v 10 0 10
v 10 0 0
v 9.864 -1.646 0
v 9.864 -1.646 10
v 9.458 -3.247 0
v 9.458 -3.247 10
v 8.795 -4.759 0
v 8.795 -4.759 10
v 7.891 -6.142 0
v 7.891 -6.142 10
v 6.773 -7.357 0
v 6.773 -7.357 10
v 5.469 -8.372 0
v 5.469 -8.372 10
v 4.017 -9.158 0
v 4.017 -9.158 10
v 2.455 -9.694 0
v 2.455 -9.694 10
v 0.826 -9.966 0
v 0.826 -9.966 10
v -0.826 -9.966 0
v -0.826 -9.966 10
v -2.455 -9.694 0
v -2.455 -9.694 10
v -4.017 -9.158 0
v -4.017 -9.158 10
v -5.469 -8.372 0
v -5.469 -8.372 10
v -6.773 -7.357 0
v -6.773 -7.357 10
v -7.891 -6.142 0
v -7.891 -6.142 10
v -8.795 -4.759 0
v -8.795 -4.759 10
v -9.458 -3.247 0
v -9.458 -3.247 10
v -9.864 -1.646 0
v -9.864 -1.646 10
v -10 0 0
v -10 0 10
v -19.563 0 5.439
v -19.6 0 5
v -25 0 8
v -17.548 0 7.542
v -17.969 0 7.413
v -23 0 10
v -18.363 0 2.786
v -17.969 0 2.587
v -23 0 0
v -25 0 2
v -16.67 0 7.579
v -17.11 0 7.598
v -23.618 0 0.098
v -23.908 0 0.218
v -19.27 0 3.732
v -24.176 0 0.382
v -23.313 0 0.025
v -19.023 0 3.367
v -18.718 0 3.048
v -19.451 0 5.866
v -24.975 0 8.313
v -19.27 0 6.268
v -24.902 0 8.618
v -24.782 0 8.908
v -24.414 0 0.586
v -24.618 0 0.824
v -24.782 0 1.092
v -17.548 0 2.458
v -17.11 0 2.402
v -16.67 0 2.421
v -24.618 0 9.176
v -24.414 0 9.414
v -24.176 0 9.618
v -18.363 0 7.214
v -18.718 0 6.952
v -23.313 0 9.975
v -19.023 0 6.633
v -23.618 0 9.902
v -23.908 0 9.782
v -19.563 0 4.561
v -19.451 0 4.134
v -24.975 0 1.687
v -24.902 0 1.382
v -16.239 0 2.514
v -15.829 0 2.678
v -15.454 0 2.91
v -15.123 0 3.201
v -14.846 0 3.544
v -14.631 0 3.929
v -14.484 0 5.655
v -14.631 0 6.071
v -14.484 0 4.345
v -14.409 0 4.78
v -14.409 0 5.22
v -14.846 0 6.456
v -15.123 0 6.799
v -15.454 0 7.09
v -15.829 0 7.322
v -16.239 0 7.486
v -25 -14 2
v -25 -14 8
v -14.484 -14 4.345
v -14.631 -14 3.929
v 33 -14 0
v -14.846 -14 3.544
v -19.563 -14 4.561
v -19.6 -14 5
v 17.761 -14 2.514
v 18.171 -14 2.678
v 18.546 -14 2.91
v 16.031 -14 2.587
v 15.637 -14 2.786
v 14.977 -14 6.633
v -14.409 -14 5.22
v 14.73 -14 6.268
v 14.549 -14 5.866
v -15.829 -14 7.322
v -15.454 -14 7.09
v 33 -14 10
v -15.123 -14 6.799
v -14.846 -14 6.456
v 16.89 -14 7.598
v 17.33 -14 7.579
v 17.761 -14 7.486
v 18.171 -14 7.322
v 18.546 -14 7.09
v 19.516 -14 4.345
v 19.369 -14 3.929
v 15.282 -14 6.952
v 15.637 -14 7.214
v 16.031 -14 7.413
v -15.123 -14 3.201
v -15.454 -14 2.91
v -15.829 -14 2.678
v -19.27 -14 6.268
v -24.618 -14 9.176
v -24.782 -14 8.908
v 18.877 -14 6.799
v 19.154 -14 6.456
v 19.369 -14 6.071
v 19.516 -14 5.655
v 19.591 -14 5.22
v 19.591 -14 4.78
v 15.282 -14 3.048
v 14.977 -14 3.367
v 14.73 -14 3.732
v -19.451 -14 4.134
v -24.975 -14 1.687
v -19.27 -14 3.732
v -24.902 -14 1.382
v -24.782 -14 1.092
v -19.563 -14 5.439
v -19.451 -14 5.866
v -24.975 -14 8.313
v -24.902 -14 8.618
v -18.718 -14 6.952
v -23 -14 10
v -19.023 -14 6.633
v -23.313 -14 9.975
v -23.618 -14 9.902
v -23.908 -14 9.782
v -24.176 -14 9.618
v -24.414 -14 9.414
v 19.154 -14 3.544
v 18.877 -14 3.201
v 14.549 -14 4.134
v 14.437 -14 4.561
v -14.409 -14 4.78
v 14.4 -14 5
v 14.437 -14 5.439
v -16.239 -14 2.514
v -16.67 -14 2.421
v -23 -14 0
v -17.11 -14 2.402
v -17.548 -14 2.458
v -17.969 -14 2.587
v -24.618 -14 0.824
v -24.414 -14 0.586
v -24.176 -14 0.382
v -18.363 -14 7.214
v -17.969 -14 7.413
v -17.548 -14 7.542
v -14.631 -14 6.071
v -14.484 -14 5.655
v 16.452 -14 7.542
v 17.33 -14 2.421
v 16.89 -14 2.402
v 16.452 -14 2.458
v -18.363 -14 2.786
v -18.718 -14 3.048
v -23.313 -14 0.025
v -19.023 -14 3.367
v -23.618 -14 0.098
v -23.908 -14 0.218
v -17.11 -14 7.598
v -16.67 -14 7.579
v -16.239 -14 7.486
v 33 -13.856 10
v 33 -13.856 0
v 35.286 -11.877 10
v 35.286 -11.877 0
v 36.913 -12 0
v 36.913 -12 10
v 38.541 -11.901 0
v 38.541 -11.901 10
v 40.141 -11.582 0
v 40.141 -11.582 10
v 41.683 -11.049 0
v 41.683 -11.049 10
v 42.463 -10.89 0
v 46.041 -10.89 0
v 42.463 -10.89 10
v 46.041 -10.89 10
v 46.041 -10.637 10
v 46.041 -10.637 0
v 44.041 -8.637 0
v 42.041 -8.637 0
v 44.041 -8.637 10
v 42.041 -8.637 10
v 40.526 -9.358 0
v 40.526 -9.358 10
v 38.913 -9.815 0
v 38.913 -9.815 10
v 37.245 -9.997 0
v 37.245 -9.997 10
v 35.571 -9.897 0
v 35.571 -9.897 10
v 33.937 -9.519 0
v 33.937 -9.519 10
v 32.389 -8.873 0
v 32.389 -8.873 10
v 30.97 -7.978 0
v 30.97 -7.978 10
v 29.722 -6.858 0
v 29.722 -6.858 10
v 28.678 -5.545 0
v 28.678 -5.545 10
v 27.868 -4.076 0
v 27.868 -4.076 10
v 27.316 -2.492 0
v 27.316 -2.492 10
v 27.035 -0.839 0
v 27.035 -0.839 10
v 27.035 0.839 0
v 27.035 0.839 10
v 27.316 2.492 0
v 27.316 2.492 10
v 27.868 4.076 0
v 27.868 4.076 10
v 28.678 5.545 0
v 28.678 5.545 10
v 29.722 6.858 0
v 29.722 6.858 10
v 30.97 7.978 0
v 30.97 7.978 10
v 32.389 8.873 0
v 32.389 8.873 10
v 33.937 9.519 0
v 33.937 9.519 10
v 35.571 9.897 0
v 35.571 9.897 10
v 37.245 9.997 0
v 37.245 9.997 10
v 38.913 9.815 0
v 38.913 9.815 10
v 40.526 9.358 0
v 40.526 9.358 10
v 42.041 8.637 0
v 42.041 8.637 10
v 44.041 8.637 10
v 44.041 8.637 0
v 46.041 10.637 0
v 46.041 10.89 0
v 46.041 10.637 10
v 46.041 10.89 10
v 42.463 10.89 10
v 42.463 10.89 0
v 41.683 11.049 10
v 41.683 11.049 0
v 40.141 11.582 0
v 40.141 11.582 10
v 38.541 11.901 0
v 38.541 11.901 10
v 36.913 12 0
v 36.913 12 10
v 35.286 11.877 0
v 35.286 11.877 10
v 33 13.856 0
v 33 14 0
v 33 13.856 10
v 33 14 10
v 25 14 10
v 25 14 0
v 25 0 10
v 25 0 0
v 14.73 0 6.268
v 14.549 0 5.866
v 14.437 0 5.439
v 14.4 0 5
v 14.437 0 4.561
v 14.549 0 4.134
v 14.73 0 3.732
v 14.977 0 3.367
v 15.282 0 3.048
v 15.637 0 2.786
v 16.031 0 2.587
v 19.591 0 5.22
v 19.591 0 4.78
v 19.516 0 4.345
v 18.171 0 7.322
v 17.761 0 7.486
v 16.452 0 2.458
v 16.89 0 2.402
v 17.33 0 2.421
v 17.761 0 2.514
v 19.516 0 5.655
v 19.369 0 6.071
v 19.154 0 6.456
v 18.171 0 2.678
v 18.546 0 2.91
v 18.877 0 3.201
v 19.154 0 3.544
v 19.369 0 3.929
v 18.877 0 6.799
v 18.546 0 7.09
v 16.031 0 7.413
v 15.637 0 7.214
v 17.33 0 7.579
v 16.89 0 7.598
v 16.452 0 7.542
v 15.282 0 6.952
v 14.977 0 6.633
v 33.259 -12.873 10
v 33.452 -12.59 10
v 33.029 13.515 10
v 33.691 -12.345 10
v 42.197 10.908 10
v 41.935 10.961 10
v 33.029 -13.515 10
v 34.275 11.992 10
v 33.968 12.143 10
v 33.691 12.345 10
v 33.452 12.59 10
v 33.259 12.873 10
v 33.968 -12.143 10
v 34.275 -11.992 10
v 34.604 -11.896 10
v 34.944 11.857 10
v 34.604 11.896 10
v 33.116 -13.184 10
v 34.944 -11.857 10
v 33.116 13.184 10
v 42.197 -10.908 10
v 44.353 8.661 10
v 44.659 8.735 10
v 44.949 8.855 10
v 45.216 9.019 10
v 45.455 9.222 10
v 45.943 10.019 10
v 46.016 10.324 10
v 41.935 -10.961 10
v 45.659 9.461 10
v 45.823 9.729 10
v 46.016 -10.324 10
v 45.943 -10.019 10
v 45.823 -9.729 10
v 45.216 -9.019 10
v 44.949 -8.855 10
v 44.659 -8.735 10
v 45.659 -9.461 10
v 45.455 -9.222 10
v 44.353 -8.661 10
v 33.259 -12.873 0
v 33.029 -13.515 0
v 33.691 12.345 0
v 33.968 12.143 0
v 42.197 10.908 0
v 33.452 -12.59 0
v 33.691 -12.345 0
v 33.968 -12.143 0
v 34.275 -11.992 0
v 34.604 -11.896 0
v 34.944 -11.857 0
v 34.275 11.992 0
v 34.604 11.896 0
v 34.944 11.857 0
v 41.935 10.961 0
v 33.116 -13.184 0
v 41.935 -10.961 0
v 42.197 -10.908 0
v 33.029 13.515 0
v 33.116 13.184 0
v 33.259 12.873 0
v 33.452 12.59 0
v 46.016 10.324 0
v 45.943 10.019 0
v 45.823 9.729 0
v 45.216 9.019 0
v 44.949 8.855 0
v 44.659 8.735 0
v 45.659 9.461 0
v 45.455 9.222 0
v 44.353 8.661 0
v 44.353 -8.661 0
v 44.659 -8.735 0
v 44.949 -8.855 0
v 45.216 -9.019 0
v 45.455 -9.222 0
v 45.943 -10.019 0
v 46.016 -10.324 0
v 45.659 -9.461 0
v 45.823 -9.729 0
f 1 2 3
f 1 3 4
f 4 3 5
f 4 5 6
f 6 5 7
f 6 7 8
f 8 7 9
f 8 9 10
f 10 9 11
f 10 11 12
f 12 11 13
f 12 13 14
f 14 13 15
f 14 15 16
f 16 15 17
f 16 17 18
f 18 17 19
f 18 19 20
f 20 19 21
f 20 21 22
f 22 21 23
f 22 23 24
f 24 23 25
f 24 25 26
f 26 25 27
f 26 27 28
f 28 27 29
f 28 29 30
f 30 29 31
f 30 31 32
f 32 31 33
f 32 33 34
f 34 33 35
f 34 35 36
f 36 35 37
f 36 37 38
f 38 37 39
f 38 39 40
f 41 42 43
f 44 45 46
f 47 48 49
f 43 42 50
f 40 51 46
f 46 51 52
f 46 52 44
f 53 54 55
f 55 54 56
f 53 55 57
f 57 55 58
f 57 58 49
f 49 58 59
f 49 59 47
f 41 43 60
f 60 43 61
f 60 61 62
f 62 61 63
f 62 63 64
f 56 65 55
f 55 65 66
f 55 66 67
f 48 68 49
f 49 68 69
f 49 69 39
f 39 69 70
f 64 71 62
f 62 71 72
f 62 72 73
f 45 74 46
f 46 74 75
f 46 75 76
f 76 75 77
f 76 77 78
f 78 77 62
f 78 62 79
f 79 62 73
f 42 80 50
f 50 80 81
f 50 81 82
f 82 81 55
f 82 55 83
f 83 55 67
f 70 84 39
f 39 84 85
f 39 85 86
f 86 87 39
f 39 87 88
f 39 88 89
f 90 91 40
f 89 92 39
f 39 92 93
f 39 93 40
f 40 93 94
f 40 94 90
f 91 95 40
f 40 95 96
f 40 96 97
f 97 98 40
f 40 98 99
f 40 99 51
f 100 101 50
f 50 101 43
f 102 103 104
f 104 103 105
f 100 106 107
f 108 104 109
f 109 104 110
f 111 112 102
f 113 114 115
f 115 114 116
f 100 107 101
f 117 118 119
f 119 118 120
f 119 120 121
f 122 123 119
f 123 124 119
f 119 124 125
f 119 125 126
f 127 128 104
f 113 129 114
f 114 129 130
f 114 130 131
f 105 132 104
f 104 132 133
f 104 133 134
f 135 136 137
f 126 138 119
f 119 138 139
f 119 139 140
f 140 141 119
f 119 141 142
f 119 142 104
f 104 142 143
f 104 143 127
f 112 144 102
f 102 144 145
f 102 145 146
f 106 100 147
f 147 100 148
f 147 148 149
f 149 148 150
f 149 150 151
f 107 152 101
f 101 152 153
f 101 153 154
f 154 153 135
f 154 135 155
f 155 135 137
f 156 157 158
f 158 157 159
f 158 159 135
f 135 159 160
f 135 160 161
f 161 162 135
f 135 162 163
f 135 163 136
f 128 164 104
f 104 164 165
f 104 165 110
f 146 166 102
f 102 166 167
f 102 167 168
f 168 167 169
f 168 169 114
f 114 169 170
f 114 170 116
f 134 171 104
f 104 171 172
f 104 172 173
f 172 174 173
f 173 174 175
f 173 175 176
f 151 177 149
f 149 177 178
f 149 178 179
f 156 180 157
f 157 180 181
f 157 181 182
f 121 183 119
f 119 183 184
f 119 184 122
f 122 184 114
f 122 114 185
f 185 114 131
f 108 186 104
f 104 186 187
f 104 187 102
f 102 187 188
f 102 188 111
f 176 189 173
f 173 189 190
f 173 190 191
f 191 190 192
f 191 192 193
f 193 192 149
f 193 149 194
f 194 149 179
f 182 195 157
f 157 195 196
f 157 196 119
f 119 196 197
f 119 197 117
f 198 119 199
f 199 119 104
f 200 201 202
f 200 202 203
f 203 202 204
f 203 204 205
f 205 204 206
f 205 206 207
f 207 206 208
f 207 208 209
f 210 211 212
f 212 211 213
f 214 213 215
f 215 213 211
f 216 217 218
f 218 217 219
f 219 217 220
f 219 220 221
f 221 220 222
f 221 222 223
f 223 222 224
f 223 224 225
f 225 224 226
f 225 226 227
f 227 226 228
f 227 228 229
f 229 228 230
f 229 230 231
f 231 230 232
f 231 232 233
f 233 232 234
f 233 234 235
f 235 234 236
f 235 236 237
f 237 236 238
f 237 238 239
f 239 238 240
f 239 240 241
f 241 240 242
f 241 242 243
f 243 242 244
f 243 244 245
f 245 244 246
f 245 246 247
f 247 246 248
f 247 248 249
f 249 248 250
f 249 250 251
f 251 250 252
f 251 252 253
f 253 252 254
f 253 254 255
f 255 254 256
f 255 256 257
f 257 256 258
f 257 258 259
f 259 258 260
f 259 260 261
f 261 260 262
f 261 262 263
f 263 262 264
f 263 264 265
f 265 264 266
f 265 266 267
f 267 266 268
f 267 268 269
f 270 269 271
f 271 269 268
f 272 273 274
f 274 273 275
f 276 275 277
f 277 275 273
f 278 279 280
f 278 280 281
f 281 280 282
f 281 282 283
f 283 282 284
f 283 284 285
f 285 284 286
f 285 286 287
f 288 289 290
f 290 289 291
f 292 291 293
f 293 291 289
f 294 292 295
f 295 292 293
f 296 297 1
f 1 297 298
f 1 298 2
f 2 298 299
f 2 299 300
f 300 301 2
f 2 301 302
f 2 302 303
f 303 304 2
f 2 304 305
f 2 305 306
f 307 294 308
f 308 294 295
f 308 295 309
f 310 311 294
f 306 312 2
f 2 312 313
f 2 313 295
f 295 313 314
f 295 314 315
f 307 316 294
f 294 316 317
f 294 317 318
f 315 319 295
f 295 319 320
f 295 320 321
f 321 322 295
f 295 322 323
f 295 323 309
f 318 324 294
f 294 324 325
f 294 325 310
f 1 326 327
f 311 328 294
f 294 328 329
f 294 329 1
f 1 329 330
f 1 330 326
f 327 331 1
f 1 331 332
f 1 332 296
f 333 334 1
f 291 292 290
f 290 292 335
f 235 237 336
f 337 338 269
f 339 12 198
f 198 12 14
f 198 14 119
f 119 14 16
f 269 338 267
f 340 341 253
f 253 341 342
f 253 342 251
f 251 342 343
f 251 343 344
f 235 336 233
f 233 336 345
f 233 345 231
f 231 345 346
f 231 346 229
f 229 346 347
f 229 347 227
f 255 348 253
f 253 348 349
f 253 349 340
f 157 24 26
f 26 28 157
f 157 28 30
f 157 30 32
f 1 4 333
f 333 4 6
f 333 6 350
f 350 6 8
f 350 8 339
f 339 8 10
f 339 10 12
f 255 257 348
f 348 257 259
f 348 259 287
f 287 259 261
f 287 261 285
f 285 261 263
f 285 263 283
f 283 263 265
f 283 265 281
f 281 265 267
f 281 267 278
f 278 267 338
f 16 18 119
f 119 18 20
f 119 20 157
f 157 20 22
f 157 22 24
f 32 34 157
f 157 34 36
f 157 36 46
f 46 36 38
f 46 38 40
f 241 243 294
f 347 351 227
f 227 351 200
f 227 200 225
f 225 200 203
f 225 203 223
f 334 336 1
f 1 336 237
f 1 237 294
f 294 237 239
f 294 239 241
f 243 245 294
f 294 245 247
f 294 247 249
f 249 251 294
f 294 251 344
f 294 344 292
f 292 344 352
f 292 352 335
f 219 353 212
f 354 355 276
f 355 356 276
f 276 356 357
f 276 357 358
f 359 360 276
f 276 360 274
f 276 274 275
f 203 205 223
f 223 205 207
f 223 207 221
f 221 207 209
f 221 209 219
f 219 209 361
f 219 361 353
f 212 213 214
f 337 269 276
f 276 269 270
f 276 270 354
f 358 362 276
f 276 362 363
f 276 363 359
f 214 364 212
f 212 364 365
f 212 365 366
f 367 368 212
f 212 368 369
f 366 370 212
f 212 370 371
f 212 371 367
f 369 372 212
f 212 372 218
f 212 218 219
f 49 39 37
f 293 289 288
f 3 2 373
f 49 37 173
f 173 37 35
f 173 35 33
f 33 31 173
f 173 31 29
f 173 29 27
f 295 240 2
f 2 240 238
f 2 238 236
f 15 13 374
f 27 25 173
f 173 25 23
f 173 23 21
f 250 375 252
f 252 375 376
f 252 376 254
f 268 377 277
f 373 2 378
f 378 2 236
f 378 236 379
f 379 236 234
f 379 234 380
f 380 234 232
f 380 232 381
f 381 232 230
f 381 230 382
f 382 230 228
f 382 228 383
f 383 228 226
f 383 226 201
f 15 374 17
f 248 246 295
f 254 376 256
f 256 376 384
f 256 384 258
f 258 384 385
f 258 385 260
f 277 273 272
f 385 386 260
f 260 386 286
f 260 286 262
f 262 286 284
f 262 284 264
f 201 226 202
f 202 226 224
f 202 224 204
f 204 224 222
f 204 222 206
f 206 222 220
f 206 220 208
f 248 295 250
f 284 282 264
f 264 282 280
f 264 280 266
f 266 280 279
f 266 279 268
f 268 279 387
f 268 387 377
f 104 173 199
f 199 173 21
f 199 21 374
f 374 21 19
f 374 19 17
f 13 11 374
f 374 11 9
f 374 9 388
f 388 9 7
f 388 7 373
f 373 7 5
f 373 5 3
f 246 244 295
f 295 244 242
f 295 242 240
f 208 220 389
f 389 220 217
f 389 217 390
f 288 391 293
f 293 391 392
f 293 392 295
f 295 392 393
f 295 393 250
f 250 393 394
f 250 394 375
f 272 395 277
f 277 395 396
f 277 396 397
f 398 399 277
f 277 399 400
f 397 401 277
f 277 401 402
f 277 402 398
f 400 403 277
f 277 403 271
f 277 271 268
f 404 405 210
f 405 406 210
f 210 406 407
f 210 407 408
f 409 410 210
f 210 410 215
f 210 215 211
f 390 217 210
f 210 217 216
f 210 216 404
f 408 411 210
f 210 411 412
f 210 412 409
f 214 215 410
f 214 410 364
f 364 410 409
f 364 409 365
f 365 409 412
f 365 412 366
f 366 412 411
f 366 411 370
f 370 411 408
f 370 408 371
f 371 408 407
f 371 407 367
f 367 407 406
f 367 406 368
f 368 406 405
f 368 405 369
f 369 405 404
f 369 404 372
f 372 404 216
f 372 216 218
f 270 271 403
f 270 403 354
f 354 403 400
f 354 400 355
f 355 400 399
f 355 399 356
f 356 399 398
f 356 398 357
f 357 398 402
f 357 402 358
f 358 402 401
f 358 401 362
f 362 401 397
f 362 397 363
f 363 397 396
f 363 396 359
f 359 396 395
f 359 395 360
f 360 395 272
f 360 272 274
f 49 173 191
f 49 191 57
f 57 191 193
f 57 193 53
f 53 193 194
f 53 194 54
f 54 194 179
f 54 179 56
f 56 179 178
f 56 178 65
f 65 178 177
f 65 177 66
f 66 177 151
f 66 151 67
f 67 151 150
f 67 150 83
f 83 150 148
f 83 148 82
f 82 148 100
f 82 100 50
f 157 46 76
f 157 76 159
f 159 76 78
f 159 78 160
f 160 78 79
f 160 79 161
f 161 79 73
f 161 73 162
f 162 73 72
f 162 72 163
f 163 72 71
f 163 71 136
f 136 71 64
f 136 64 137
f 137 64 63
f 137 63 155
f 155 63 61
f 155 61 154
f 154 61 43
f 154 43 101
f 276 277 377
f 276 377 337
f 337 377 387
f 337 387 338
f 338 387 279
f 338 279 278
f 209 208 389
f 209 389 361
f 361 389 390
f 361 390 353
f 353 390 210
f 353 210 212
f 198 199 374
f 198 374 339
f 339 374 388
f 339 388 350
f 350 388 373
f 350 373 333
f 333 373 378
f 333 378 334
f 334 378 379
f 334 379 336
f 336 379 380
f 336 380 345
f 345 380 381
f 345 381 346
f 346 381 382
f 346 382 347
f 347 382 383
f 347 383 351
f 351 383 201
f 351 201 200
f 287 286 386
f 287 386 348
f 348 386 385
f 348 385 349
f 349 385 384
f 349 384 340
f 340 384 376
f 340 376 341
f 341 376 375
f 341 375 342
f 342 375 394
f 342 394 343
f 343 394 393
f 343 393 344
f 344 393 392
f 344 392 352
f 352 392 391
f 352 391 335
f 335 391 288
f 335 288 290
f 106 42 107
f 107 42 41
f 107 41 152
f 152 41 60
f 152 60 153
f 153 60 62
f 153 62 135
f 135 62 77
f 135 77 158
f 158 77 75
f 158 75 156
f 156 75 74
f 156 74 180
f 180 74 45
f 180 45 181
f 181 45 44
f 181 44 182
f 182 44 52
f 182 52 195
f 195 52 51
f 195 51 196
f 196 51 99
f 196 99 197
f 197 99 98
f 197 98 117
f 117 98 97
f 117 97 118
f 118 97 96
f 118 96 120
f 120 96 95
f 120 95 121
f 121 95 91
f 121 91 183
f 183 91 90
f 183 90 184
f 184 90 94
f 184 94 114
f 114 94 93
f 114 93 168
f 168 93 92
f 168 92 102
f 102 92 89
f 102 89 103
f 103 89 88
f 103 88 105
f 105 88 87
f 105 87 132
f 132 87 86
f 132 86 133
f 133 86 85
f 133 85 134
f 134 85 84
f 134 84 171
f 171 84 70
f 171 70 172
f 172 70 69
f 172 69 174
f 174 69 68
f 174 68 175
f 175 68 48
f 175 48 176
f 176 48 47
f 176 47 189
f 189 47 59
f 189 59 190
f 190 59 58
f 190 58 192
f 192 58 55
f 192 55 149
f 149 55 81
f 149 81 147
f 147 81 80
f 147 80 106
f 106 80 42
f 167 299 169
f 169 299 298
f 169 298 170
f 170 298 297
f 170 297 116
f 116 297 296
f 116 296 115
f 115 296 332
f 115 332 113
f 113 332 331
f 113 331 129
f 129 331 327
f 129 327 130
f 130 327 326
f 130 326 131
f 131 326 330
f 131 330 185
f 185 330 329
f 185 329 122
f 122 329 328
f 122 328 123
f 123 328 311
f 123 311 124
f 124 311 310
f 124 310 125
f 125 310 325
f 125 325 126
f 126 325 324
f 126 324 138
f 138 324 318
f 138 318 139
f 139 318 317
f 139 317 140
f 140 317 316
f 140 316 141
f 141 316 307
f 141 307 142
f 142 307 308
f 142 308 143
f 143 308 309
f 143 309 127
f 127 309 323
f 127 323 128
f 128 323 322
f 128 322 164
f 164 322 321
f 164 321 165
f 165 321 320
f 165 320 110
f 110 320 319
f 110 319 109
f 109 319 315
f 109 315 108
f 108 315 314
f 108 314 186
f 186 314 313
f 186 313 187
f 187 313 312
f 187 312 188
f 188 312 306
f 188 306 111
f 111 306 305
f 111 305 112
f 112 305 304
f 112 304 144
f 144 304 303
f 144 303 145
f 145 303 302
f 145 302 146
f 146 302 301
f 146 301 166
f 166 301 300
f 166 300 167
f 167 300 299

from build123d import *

# Parameters (mm, degrees)
BOSS_EXTRUDE1_DEPTH = 10
FILLET1_R           = 2
SKETCH4_R           = 2.6
CUT_EXTRUDE2_DEPTH  = 50.150169347


with BuildPart() as part:
    # Sketch1 → Boss-Extrude1 (new body)
    with BuildSketch(Plane.XY):
        with BuildLine():
            Line((10, 0), (25, 0))
            Line((25, 0), (25, 14))
            Line((25, 14), (33, 14))
            Line((33, 14), (33, 11.313708499))
            ThreePointArc((33, 11.313708499), (37.561789374, 11.986842482), (42.040624961, 10.89))
            Line((42.040624961, 10.89), (46.040624961, 10.89))
            Line((46.040624961, 10.89), (46.040624961, 8.636671813))
            Line((46.040624961, 8.636671813), (42.040624961, 8.636671813))
            ThreePointArc((42.040624961, 8.636671813), (27, 0), (42.040624961, -8.636671813))
            Line((42.040624961, -8.636671813), (46.040624961, -8.636671813))
            Line((46.040624961, -8.636671813), (46.040624961, -10.89))
            Line((46.040624961, -10.89), (42.040624961, -10.89))
            ThreePointArc((42.040624961, -10.89), (37.561789374, -11.986842482), (33, -11.313708499))
            Line((33, -11.313708499), (33, -14))
            Line((33, -14), (25, -14))
            Line((25, -14), (-25, -14))
            Line((-25, -14), (-25, 0))
            Line((-25, 0), (-10, 0))
            ThreePointArc((-10, 0), (0, -10), (10, 0))
        make_face()
    extrude(amount=BOSS_EXTRUDE1_DEPTH)

    # Fillet1
    fillet1_edges = [part.edges().sort_by_distance(p)[0] for p in [
        (-25, -7, 10),
        (-25, -7, 0),
        (33, 11.313708499, 5),
        (42.040624961, 10.89, 5),
        (46.040624961, 8.636671813, 5),
        (46.040624961, -8.636671813, 5),
        (42.040624961, -10.89, 5),
        (33, -11.313708499, 5),
    ]]
    fillet(fillet1_edges, radius=FILLET1_R)

    # Sketch4 → Cut-Extrude2 (cut, through all)
    with BuildSketch(Plane(origin=(0, 0, 0), x_dir=(1, 0, 0), z_dir=(0, 1, 0))):
        with Locations(Location((-17, -5, 0), (0, 0, 180))):
            Circle(SKETCH4_R)
        with Locations(Location((17, -5, 0), (0, 0, 180))):
            Circle(SKETCH4_R)
    extrude(amount=-CUT_EXTRUDE2_DEPTH, mode=Mode.SUBTRACT)


solid = part.part
